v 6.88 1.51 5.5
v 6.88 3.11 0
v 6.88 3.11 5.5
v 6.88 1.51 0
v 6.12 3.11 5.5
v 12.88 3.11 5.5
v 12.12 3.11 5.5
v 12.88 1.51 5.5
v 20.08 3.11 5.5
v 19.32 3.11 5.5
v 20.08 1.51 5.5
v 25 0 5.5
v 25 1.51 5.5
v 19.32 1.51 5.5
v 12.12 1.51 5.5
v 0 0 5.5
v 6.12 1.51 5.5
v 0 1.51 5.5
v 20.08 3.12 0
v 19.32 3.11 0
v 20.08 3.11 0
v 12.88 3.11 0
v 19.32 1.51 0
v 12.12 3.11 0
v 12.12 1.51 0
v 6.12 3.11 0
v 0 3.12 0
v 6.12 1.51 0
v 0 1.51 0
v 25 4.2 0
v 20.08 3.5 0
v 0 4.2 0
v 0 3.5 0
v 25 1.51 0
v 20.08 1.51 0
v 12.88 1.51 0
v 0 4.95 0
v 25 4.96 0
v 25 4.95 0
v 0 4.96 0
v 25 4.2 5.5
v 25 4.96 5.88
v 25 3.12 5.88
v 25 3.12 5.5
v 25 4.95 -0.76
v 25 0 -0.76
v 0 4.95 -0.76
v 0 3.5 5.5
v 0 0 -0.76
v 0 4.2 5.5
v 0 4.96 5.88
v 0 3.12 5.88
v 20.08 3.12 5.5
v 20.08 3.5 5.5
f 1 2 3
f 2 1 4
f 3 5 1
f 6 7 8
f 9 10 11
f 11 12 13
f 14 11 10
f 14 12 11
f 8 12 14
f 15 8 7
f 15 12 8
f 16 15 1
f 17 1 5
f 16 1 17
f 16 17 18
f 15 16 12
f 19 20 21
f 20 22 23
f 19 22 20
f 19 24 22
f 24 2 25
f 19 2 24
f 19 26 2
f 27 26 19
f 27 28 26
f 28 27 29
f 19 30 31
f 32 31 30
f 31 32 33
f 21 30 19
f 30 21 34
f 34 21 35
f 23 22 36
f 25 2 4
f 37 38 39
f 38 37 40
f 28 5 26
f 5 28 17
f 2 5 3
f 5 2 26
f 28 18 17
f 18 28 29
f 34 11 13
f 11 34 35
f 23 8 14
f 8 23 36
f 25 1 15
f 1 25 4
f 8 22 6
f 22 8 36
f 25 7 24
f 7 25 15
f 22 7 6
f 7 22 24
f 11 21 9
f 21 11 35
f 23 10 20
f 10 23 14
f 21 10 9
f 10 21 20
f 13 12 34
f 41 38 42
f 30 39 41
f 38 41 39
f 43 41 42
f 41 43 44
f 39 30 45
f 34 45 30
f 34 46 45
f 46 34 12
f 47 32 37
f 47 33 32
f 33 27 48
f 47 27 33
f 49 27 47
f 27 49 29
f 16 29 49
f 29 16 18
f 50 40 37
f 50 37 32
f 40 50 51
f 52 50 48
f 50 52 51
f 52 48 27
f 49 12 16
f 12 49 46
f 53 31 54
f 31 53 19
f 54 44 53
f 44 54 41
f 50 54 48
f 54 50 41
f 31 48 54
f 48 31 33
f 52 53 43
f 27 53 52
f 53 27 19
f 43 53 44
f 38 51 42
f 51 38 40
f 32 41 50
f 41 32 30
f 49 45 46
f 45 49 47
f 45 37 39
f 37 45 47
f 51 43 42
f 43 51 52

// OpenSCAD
// This file is created by Robert Cross <@Quantum-cross> as a modification of
// LucidVR/lucidgloves which is released under the MIT License.
// See file LICENSE for details.

hallthick = 1.60;
hallheight = 5.50;
hallwidth = 4.0 + 2;

wallthick = .76;
wallthick2 = 1.51;

magnetthick = 0.70;

length = 25;

cube([length, wallthick2, hallheight]); // "bottom"

// channel inner wall
translate([0,wallthick*2+hallthick])
cube([length/2+hallwidth*1.2+wallthick/2, wallthick/2, hallheight]);

//channel outer wall
translate([0,wallthick*1.5+hallthick + wallthick + magnetthick])
cube([length, wallthick, hallheight]);

//z=0 floor
translate([0,0,-wallthick])
cube([length, wallthick*1.5 + wallthick2*1 + hallthick+magnetthick, wallthick]);

//z=max cieling
translate([0,wallthick*2+hallthick,hallheight])
cube([length, wallthick*1.5+magnetthick, wallthick/2]);

translate([-wallthick/2-hallwidth+length/2,0,0]){
// first hall endstop
translate([0,wallthick2])
cube([wallthick, hallthick, hallheight]);

//second hall stop
translate([hallwidth,wallthick2])
cube([wallthick, hallthick, hallheight]);

// first hall triangles
//translate([wallthick, wallthick2]){
//    linear_extrude(hallheight)
//        polygon([[0,0],[0,hallthick/2],[hallthick/2,0]]);
//    translate([hallwidth-wallthick,0])
//        linear_extrude(hallheight)
//            polygon([[-hallthick/2,0],[0,hallthick/2],[0,0]]);
//}

//second hall triangles
//translate([hallwidth,0]){
//translate([wallthick, wallthick2]){
//    linear_extrude(hallheight)
//        polygon([[0,0],[0,hallthick/2],[hallthick/2,0]]);
//    translate([hallwidth*1.2-wallthick,0])
//        linear_extrude(hallheight)
//            polygon([[-hallthick/2,0],[0,hallthick/2],[0,0]]);
//}

//third end stop
translate([hallwidth,0])
translate([hallwidth*1.2,wallthick2])
cube([wallthick, hallthick, hallheight]);
}
